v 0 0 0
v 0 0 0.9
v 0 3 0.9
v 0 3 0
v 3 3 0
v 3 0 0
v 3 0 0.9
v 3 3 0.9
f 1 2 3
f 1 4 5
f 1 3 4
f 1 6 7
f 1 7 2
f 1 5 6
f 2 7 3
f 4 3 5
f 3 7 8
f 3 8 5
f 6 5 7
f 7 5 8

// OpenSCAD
/* Warning, this is a very basic generator with a lot of approximation 
input data : [VQFN, LXX, 3x3x0.9mm, 20, , C, C04-00421C]
generated by com.zoubworld.electronics.cad.model3d.Basic
Date : Sun Feb 15 10:50:48 CET 2026
*/

//body
color("black")
translate([0,0,0])
cube([3.0,3.0,0.9], center=false);
